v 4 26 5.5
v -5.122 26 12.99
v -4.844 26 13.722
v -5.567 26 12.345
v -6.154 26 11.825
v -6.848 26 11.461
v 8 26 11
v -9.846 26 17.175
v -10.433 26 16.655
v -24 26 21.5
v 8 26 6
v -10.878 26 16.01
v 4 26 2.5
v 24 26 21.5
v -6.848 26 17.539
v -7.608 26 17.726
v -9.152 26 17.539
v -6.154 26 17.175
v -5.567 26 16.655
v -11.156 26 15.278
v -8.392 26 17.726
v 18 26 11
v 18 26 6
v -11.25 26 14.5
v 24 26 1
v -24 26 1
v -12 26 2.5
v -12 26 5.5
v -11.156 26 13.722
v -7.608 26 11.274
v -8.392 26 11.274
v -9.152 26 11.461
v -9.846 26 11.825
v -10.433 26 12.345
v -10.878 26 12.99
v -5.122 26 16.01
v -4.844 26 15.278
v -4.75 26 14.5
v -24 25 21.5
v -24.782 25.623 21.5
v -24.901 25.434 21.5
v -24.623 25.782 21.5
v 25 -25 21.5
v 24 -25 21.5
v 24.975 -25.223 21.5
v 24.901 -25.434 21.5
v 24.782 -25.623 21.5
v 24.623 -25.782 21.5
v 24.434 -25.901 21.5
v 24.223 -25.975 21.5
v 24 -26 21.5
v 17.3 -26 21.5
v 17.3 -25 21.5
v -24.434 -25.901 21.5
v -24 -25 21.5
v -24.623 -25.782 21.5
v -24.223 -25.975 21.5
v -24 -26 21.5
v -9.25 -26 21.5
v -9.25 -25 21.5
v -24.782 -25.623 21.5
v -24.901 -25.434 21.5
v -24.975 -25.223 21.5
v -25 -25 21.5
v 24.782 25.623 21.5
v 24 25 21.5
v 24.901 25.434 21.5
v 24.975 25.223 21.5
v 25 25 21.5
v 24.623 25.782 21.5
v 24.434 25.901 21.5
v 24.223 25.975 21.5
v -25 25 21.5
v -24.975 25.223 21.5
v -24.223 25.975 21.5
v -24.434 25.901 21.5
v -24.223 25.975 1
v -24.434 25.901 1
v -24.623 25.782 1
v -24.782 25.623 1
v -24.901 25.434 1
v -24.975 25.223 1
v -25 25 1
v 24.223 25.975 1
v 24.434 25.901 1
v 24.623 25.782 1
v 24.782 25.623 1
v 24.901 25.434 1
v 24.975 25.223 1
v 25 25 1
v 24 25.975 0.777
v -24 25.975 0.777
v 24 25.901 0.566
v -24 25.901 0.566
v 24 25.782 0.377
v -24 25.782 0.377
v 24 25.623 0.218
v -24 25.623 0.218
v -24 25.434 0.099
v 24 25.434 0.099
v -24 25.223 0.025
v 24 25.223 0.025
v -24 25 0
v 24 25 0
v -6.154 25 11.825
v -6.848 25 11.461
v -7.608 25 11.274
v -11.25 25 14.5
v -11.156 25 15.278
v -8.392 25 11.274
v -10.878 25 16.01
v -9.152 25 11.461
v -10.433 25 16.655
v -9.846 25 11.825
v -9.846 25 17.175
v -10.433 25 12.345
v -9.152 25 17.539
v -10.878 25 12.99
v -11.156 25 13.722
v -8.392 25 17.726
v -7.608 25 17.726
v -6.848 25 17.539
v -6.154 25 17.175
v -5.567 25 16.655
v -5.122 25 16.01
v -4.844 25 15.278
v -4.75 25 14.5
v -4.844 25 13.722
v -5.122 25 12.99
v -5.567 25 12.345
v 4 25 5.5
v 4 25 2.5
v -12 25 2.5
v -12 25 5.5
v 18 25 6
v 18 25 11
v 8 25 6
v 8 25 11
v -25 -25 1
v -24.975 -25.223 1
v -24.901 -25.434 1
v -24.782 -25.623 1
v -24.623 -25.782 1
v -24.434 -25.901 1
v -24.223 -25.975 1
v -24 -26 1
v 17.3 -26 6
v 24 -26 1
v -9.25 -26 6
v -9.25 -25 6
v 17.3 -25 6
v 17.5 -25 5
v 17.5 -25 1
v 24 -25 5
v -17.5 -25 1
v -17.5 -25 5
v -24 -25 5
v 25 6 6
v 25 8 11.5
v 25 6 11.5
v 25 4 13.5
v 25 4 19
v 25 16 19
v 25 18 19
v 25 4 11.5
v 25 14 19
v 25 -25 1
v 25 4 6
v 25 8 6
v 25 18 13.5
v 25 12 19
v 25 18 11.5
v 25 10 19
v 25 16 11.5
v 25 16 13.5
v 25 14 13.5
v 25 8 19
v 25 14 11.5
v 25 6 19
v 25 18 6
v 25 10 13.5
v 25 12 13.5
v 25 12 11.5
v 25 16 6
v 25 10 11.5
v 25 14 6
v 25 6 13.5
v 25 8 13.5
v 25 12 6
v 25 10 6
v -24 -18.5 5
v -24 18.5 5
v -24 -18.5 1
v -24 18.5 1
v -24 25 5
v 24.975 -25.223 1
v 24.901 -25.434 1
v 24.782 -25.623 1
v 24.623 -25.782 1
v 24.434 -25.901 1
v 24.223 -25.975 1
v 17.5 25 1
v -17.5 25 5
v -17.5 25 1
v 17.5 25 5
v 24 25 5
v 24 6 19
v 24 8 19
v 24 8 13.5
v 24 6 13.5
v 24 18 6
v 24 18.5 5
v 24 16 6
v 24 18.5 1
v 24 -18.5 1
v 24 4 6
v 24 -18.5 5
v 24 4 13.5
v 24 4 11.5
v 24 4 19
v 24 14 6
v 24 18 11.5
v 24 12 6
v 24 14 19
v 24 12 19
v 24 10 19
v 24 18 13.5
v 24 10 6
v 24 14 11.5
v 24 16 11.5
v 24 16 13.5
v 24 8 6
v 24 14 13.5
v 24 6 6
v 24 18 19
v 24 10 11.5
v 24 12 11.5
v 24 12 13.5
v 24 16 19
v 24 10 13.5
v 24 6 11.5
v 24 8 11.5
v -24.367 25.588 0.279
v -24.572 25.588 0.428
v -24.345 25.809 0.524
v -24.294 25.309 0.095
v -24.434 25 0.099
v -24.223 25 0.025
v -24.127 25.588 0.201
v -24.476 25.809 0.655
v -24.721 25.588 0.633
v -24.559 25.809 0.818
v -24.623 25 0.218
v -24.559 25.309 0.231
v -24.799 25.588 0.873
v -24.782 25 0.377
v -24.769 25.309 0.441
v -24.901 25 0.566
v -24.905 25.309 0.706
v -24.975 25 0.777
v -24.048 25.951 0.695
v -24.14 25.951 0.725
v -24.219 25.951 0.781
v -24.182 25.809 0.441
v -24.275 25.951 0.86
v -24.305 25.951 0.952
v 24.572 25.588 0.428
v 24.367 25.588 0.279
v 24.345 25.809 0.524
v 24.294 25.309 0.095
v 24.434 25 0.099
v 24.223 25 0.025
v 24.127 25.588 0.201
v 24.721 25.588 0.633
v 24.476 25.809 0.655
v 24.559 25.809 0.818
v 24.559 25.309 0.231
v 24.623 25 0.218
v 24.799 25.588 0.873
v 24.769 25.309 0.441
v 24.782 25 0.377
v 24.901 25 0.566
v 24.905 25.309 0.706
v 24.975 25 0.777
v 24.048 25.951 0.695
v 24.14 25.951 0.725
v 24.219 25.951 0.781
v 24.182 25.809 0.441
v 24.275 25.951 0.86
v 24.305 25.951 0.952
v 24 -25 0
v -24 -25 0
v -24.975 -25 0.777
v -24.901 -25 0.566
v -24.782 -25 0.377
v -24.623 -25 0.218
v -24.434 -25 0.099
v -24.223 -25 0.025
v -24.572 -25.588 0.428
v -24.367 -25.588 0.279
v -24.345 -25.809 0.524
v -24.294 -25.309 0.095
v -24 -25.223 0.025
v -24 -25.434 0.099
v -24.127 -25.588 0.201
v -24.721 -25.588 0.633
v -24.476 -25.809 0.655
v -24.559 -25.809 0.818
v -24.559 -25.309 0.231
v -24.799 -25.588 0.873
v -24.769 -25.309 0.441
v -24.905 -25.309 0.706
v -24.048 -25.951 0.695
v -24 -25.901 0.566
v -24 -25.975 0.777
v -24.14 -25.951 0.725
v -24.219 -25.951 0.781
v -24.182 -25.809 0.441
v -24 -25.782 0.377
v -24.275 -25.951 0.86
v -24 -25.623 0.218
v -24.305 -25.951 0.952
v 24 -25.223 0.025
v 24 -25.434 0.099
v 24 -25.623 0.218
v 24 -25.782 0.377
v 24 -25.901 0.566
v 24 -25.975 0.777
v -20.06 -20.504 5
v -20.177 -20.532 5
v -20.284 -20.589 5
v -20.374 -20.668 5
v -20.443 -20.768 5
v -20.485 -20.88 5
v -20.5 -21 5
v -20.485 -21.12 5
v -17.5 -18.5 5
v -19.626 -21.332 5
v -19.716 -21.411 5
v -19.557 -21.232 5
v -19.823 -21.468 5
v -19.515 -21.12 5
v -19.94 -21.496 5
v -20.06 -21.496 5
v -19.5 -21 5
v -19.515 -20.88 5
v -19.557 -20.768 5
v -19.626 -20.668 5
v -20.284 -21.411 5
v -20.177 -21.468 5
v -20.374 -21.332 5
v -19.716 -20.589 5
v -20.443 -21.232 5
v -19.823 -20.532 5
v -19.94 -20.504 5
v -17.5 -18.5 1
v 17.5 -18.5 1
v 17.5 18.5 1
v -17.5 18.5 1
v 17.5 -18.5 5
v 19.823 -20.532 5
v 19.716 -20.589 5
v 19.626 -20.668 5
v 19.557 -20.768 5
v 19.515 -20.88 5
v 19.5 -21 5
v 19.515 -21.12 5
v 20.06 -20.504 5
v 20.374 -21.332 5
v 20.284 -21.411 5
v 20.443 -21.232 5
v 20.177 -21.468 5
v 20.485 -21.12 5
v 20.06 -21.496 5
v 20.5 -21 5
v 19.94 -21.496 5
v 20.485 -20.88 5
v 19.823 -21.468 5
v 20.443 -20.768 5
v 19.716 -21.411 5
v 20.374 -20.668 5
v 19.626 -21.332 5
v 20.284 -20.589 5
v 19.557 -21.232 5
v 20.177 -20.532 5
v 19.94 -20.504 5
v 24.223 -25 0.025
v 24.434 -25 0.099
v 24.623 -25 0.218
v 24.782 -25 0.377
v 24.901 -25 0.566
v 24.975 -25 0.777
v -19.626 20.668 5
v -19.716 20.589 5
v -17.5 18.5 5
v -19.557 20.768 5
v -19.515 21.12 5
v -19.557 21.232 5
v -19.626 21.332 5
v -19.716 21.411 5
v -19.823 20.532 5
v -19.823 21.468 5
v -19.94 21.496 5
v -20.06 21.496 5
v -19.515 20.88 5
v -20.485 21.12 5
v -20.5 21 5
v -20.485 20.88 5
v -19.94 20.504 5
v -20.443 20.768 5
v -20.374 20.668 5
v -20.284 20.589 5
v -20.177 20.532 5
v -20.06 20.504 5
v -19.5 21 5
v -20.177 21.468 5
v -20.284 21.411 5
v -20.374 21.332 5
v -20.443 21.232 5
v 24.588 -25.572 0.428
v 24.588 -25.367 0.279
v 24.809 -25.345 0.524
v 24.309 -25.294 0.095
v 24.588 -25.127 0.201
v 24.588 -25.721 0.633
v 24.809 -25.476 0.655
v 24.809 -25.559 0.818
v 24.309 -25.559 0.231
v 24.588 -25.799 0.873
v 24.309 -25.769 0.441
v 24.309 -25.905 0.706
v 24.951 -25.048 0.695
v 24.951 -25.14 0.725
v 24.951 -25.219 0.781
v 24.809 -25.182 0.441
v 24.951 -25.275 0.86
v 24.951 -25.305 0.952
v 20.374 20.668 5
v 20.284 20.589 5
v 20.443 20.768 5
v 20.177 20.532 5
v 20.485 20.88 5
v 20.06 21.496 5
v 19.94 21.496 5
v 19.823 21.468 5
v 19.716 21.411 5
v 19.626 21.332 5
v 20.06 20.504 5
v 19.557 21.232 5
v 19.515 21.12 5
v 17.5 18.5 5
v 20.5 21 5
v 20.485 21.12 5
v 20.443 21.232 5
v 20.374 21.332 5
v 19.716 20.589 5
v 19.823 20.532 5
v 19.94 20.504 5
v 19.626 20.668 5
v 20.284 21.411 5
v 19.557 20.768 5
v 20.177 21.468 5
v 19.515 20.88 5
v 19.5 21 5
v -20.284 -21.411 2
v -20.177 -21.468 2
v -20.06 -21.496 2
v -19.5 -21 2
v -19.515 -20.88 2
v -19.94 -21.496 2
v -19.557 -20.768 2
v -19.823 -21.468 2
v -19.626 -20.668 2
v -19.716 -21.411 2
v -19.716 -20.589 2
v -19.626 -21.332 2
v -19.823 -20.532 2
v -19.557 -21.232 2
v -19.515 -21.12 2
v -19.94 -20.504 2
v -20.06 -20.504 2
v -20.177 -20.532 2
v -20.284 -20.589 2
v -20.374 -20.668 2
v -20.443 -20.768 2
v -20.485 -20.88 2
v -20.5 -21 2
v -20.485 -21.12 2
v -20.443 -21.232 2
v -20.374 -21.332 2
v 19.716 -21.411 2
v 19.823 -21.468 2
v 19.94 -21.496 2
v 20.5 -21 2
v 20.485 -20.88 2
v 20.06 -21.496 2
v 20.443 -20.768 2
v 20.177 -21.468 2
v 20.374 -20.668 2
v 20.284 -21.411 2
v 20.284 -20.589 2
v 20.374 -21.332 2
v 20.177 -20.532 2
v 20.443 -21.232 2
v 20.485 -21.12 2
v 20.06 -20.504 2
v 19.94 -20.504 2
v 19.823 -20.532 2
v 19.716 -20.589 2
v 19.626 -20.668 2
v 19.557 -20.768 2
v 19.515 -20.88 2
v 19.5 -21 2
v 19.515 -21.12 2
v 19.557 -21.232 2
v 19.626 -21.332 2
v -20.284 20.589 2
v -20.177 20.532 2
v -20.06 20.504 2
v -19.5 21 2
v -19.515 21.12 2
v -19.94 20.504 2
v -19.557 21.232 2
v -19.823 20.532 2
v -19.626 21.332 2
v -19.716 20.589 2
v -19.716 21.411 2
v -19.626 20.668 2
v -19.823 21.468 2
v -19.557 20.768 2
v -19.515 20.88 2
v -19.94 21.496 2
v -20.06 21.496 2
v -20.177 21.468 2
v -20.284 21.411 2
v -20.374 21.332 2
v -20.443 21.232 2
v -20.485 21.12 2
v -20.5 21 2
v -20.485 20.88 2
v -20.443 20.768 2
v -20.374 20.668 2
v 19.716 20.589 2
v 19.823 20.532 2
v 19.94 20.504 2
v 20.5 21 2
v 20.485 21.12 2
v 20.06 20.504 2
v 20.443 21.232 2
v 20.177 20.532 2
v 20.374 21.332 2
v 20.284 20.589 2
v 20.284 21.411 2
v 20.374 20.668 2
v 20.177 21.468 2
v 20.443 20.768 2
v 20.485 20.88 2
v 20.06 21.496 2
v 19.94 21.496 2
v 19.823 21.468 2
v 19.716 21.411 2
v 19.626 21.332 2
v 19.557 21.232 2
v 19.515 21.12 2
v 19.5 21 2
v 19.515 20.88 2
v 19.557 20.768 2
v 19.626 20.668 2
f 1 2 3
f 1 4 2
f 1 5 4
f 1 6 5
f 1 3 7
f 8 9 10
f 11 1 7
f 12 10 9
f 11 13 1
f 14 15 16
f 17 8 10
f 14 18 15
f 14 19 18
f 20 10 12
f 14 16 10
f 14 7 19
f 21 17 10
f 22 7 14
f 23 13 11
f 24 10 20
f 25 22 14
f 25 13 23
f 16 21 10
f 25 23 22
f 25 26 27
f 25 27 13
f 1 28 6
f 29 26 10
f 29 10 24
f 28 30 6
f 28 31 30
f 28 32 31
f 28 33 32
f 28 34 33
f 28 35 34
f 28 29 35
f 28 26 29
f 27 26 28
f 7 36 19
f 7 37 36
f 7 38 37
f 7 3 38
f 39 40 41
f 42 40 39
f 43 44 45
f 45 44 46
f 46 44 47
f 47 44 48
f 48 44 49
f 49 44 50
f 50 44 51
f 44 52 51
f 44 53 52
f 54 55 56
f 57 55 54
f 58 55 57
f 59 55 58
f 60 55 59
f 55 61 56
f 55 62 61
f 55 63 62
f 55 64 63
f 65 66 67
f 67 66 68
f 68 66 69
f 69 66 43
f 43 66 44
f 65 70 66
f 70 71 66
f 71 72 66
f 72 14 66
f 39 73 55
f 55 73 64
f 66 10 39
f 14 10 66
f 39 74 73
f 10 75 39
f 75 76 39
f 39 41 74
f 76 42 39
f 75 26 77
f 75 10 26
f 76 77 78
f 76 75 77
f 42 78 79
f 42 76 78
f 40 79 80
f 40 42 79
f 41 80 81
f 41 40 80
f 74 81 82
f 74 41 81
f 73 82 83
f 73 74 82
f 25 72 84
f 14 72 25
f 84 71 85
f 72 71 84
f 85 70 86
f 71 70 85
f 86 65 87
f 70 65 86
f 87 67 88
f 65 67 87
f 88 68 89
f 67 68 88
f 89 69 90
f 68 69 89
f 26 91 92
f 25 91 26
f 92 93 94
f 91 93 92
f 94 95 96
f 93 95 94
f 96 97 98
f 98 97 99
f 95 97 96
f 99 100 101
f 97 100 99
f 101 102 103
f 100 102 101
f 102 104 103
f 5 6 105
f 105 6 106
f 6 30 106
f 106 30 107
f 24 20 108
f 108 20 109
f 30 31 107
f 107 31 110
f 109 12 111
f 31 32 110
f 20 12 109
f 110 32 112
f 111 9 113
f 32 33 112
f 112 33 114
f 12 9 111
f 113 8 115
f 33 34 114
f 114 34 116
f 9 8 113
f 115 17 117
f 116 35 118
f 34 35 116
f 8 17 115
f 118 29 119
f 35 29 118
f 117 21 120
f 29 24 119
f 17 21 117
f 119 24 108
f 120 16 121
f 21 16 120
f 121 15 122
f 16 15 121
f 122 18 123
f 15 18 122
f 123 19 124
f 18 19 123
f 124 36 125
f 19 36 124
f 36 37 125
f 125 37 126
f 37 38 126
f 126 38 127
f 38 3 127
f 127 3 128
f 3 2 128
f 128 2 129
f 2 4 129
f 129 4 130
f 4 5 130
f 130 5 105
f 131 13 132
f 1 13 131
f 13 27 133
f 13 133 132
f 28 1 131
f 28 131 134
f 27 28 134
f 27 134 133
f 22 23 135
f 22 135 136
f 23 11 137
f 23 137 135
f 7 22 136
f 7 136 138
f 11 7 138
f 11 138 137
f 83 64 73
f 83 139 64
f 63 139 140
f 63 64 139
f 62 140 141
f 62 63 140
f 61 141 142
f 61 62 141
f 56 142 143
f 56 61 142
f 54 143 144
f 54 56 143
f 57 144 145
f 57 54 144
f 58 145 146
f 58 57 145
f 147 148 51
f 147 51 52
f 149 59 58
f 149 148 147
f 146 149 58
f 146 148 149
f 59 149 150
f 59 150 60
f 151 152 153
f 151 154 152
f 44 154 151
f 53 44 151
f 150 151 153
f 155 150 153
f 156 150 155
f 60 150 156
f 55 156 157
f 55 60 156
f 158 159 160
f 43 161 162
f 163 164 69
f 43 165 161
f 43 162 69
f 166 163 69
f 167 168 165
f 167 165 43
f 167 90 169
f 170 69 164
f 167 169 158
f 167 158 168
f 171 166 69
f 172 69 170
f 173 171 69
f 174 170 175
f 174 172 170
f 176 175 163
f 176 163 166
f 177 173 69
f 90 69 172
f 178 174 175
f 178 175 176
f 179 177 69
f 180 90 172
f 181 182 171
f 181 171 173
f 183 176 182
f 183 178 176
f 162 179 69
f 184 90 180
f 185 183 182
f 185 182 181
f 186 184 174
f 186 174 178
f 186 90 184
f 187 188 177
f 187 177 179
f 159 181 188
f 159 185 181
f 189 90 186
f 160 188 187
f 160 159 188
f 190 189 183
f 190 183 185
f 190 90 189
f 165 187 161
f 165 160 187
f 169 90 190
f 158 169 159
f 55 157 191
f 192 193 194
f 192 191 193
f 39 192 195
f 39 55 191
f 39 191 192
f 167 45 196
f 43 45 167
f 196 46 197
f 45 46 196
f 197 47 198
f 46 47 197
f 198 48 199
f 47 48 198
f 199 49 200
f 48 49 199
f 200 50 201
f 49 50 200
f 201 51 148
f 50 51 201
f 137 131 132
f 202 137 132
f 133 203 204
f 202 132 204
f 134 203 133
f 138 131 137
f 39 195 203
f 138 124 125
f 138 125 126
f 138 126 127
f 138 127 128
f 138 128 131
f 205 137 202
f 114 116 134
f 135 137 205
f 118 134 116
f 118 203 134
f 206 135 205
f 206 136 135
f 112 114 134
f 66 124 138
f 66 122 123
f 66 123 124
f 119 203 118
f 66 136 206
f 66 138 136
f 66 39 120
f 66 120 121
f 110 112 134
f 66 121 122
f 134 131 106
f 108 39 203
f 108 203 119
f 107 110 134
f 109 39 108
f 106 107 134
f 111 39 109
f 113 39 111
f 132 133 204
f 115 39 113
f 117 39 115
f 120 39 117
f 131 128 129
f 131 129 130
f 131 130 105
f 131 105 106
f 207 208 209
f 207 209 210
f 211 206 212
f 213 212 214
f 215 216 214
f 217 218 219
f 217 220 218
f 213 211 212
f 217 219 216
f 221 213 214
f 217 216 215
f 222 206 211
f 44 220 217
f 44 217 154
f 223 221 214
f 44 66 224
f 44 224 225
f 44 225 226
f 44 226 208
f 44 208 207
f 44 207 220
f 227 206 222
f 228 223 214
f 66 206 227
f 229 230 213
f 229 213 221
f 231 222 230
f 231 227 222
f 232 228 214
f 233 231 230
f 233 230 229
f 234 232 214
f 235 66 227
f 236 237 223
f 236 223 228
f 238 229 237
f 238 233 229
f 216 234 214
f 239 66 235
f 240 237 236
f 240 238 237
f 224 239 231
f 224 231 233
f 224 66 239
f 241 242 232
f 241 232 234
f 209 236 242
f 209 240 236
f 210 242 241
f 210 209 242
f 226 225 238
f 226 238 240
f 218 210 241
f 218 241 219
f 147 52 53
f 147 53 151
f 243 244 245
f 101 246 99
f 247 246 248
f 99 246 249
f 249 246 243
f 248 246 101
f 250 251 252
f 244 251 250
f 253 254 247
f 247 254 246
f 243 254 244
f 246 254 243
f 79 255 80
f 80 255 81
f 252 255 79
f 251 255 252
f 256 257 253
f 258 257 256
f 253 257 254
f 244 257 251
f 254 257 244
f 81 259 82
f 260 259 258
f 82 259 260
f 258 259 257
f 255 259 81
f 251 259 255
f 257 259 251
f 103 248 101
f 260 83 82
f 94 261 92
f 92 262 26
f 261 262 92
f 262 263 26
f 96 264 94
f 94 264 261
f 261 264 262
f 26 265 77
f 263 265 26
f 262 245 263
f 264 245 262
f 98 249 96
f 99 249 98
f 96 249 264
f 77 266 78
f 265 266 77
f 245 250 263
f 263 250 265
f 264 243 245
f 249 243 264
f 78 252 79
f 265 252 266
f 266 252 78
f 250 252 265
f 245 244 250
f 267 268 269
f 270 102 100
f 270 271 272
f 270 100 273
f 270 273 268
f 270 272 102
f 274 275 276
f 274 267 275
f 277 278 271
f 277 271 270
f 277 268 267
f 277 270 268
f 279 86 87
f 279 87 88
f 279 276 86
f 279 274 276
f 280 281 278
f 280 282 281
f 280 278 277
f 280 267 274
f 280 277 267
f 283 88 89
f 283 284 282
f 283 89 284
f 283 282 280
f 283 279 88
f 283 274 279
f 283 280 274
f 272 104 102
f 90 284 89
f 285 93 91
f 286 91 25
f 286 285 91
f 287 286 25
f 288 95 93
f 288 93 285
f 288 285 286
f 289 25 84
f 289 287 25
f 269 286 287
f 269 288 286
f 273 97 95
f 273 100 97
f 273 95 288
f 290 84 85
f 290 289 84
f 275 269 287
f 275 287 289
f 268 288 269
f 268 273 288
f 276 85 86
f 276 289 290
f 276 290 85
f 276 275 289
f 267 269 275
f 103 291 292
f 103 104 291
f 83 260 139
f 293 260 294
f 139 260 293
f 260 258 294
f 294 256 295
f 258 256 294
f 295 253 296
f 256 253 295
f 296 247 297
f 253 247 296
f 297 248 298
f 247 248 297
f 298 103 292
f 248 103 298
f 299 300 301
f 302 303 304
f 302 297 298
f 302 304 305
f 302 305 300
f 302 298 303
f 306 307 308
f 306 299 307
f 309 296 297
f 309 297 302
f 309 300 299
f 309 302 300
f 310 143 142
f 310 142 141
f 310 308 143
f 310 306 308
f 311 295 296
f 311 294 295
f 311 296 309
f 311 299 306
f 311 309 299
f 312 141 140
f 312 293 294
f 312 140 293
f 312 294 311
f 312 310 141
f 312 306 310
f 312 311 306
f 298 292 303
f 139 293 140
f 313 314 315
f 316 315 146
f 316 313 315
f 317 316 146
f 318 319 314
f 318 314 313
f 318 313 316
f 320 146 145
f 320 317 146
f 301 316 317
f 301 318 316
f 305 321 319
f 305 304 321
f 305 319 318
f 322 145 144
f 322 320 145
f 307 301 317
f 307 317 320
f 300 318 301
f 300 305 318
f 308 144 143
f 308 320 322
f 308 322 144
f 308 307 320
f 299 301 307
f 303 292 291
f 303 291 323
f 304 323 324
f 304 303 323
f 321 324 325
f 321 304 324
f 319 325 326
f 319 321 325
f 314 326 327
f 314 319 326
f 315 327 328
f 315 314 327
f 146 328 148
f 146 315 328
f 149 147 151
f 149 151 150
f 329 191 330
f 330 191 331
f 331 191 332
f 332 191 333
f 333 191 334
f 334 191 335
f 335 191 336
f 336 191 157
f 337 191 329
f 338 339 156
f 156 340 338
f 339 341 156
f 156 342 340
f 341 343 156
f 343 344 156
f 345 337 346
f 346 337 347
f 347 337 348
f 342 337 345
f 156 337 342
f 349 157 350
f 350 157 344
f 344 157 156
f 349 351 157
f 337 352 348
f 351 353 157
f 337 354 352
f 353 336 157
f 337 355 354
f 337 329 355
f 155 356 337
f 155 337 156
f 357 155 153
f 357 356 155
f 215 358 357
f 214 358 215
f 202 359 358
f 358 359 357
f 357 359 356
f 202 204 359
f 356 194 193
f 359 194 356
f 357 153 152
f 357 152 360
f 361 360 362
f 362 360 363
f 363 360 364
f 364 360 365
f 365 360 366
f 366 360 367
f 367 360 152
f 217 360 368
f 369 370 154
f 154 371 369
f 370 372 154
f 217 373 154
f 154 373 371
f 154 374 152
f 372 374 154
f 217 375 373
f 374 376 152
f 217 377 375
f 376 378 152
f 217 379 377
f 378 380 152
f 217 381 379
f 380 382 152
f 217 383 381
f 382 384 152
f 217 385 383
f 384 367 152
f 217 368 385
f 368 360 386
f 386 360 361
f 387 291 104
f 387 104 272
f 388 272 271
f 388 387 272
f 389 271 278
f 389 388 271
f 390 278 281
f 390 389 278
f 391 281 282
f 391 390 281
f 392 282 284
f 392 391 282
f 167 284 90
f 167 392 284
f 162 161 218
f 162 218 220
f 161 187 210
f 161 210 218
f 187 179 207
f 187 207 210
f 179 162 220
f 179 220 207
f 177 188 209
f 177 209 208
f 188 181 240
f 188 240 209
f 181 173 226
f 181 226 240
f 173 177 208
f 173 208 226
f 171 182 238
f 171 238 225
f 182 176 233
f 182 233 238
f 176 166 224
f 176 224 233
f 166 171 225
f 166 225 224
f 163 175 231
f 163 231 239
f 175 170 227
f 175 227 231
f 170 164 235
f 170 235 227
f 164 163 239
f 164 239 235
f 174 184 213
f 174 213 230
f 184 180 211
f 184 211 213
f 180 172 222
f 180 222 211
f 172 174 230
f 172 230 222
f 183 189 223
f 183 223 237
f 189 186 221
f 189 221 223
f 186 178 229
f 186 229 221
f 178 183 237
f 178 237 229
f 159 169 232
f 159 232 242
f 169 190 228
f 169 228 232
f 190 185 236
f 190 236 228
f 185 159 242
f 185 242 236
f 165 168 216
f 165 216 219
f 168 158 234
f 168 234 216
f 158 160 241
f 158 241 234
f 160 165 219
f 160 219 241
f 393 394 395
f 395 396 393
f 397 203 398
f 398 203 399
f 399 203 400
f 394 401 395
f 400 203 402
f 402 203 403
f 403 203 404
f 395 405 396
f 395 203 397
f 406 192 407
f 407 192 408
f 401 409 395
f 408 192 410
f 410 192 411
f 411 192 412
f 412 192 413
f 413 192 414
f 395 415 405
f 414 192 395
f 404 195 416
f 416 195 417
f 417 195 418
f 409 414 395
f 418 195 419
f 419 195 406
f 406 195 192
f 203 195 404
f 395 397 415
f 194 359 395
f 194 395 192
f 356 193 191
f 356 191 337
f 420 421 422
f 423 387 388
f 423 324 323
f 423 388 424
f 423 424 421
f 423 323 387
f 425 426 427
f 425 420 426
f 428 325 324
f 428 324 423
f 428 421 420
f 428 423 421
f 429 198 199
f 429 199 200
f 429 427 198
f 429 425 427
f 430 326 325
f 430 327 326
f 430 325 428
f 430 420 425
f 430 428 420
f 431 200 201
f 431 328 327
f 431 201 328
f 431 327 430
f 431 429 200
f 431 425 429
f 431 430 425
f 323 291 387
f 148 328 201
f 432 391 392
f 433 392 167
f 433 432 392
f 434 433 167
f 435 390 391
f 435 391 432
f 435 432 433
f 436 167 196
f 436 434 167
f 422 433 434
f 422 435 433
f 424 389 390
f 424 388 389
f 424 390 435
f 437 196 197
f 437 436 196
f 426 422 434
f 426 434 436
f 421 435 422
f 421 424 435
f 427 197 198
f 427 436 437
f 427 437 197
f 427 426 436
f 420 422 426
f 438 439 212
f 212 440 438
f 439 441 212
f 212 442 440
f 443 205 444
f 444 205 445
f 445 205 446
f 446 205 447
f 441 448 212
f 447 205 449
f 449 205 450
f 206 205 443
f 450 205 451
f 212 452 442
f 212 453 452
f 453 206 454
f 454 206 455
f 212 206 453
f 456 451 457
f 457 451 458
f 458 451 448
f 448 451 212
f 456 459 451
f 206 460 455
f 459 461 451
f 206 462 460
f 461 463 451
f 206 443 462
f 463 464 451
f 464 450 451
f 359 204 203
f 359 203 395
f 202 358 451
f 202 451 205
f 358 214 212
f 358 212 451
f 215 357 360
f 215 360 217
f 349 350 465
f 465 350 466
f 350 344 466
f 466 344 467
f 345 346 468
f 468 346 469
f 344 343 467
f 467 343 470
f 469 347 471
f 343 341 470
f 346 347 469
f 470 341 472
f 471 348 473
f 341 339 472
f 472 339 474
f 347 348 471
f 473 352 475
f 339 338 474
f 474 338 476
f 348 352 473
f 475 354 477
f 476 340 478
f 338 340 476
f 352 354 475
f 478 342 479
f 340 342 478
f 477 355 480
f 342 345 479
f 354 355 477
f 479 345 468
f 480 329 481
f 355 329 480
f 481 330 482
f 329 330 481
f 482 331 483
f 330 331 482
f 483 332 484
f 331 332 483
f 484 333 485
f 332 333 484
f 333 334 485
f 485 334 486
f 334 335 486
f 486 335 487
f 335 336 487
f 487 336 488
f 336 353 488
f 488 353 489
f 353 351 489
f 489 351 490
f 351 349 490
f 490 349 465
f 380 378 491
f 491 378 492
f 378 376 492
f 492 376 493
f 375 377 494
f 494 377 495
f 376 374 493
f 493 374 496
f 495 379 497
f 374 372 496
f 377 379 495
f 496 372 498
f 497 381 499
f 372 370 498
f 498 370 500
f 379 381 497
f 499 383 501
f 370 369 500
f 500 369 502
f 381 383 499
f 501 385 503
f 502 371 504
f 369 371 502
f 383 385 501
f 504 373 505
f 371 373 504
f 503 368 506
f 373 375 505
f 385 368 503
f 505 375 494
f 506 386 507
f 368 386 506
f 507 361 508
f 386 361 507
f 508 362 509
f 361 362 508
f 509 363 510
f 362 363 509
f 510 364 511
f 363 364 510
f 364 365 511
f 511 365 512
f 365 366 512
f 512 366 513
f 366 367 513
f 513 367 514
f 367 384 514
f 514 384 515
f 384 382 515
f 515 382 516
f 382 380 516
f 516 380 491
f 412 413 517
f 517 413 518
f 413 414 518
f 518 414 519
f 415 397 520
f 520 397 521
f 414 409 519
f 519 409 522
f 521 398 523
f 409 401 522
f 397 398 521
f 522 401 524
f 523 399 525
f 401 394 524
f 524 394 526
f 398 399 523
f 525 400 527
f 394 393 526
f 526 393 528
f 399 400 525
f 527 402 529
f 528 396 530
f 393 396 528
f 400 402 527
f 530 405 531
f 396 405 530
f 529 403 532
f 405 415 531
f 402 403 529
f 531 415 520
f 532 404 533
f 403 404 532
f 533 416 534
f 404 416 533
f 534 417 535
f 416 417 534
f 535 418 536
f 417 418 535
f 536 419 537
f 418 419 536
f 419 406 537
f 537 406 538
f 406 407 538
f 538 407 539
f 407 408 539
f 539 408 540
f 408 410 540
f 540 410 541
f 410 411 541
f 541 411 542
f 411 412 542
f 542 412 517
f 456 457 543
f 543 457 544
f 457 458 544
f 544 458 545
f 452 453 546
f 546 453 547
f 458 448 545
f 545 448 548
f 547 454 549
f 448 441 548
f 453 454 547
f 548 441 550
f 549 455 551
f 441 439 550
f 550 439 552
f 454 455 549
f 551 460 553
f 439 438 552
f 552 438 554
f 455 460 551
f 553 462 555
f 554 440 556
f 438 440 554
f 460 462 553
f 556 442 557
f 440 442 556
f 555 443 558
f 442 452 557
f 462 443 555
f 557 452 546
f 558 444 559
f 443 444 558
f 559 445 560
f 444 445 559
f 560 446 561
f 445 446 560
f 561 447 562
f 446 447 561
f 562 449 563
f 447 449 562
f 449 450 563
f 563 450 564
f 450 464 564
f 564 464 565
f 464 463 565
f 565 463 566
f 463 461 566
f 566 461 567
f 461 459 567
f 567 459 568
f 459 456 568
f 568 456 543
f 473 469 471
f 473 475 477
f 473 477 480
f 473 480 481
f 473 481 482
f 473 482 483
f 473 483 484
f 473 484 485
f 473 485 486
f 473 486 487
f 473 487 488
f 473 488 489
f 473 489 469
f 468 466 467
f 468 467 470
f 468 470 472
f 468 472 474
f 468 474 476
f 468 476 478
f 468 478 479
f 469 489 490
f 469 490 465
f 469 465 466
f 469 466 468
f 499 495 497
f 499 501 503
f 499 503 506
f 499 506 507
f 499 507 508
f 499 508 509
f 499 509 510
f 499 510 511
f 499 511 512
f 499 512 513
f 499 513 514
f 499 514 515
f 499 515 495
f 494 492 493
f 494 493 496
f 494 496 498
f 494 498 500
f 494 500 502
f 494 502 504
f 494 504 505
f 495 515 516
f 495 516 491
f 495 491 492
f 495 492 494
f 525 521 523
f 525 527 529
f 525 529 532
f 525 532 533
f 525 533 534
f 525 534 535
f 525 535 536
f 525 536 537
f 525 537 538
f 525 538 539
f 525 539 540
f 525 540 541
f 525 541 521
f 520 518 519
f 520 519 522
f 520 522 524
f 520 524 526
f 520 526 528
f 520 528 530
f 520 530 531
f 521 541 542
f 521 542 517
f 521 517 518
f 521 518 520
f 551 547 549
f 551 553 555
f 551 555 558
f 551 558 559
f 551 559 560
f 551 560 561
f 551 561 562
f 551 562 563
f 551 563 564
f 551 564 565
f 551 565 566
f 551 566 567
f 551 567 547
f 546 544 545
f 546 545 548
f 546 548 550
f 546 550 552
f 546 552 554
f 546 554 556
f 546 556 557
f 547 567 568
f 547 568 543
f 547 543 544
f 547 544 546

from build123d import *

# Parameters (mm, degrees)
SKETCH_W        = 50
SKETCH_H        = 52
PAD_DEPTH       = 21.5
SKETCH001_W     = 48
SKETCH001_H     = 50
POCKET_DEPTH    = 20.5
SKETCH002_W     = 6.5
SKETCH002_H     = 6.5
PAD001_DEPTH    = 4
SKETCH003_R     = 0.5
POCKET001_DEPTH = 3
SKETCH004_W     = 26.55
SKETCH004_H     = 15.5
POCKET002_DEPTH = 1
SKETCH005_W     = 10
SKETCH005_H     = 5
SKETCH005_W_2   = 16
SKETCH005_H_2   = 3
POCKET003_DEPTH = 1
SKETCH006_W     = 2
SKETCH006_H     = 5.5
POCKET004_DEPTH = 1
FILLET_R        = 1
SKETCH007_R     = 3.25
POCKET005_DEPTH = 1


with BuildPart() as part:
    # Sketch → Pad (new body)
    with BuildSketch(Plane.XY):
        Rectangle(SKETCH_W, SKETCH_H)
    extrude(amount=PAD_DEPTH)

    # Sketch001 (on Face6 of Pad) → Pocket (cut)
    with BuildSketch(Plane.XY.offset(21.5)):
        Rectangle(SKETCH001_W, SKETCH001_H)
    extrude(amount=-POCKET_DEPTH, mode=Mode.SUBTRACT)

    # Sketch002 (on Face11 of Pocket) → Pad001 (join)
    with BuildSketch(Plane.XY.offset(1)):
        with Locations((-20.75, 21.75)):
            Rectangle(SKETCH002_W, SKETCH002_H)
        with Locations((20.75, 21.75)):
            Rectangle(SKETCH002_W, SKETCH002_H)
        with Locations((-20.75, -21.75)):
            Rectangle(SKETCH002_W, SKETCH002_H)
        with Locations((20.75, -21.75)):
            Rectangle(SKETCH002_W, SKETCH002_H)
    extrude(amount=PAD001_DEPTH)

    # Sketch003 (on DatumPlane) → Pocket001 (cut)
    with BuildSketch(Plane.XY.offset(5)):
        with Locations((-20, 21)):
            Circle(SKETCH003_R)
        with Locations((20, 21)):
            Circle(SKETCH003_R)
        with Locations((-20, -21)):
            Circle(SKETCH003_R)
        with Locations((20, -21)):
            Circle(SKETCH003_R)
    extrude(amount=-POCKET001_DEPTH, mode=Mode.SUBTRACT)

    # Sketch004 (on Face6 of Pocket001) → Pocket002 (cut)
    with BuildSketch(Plane.XZ.offset(26)):
        with Locations((4.025, 13.75)):
            Rectangle(SKETCH004_W, SKETCH004_H)
    extrude(amount=-POCKET002_DEPTH, mode=Mode.SUBTRACT)

    # Sketch005 (on Face1 of Pocket002) → Pocket003 (cut)
    with BuildSketch(Plane(origin=(0, 26, 0), x_dir=(-1, 0, 0), z_dir=(0, 1, 0))):
        with Locations((-13, 8.5)):
            Rectangle(SKETCH005_W, SKETCH005_H)
        with Locations((4, 4)):
            Rectangle(SKETCH005_W_2, SKETCH005_H_2)
    extrude(amount=-POCKET003_DEPTH, mode=Mode.SUBTRACT)

    # Sketch006 → Pocket004 (cut)
    with BuildSketch(Plane.YZ.offset(25)):
        with Locations((17, 16.25)):
            Rectangle(SKETCH006_W, SKETCH006_H)
        with Locations((13, 16.25)):
            Rectangle(SKETCH006_W, SKETCH006_H)
        with Locations((9, 16.25)):
            Rectangle(SKETCH006_W, SKETCH006_H)
        with Locations((5, 16.25)):
            Rectangle(SKETCH006_W, SKETCH006_H)
        with Locations((5, 8.75)):
            Rectangle(SKETCH006_W, SKETCH006_H)
        with Locations((9, 8.75)):
            Rectangle(SKETCH006_W, SKETCH006_H)
        with Locations((13, 8.75)):
            Rectangle(SKETCH006_W, SKETCH006_H)
        with Locations((17, 8.75)):
            Rectangle(SKETCH006_W, SKETCH006_H)
    extrude(amount=-POCKET004_DEPTH, mode=Mode.SUBTRACT)

    # Fillet
    fillet_edges = [part.edges().sort_by_distance(p)[0] for p in [
        (-25, 0, 0),
        (0, -26, 0),
        (25, 0, 0),
        (0, 26, 0),
        (25, 26, 10.75),
        (25, -26, 10.75),
        (-25, -26, 10.75),
        (-25, 26, 10.75),
    ]]
    fillet(fillet_edges, radius=FILLET_R)

    # Sketch007 (on Face1 of Fillet) → Pocket005 (cut)
    with BuildSketch(Plane(origin=(0, 26, 0), x_dir=(-1, 0, 0), z_dir=(0, 1, 0))):
        with Locations((8, 14.5)):
            Circle(SKETCH007_R)
    extrude(amount=-POCKET005_DEPTH, mode=Mode.SUBTRACT)


solid = part.part
